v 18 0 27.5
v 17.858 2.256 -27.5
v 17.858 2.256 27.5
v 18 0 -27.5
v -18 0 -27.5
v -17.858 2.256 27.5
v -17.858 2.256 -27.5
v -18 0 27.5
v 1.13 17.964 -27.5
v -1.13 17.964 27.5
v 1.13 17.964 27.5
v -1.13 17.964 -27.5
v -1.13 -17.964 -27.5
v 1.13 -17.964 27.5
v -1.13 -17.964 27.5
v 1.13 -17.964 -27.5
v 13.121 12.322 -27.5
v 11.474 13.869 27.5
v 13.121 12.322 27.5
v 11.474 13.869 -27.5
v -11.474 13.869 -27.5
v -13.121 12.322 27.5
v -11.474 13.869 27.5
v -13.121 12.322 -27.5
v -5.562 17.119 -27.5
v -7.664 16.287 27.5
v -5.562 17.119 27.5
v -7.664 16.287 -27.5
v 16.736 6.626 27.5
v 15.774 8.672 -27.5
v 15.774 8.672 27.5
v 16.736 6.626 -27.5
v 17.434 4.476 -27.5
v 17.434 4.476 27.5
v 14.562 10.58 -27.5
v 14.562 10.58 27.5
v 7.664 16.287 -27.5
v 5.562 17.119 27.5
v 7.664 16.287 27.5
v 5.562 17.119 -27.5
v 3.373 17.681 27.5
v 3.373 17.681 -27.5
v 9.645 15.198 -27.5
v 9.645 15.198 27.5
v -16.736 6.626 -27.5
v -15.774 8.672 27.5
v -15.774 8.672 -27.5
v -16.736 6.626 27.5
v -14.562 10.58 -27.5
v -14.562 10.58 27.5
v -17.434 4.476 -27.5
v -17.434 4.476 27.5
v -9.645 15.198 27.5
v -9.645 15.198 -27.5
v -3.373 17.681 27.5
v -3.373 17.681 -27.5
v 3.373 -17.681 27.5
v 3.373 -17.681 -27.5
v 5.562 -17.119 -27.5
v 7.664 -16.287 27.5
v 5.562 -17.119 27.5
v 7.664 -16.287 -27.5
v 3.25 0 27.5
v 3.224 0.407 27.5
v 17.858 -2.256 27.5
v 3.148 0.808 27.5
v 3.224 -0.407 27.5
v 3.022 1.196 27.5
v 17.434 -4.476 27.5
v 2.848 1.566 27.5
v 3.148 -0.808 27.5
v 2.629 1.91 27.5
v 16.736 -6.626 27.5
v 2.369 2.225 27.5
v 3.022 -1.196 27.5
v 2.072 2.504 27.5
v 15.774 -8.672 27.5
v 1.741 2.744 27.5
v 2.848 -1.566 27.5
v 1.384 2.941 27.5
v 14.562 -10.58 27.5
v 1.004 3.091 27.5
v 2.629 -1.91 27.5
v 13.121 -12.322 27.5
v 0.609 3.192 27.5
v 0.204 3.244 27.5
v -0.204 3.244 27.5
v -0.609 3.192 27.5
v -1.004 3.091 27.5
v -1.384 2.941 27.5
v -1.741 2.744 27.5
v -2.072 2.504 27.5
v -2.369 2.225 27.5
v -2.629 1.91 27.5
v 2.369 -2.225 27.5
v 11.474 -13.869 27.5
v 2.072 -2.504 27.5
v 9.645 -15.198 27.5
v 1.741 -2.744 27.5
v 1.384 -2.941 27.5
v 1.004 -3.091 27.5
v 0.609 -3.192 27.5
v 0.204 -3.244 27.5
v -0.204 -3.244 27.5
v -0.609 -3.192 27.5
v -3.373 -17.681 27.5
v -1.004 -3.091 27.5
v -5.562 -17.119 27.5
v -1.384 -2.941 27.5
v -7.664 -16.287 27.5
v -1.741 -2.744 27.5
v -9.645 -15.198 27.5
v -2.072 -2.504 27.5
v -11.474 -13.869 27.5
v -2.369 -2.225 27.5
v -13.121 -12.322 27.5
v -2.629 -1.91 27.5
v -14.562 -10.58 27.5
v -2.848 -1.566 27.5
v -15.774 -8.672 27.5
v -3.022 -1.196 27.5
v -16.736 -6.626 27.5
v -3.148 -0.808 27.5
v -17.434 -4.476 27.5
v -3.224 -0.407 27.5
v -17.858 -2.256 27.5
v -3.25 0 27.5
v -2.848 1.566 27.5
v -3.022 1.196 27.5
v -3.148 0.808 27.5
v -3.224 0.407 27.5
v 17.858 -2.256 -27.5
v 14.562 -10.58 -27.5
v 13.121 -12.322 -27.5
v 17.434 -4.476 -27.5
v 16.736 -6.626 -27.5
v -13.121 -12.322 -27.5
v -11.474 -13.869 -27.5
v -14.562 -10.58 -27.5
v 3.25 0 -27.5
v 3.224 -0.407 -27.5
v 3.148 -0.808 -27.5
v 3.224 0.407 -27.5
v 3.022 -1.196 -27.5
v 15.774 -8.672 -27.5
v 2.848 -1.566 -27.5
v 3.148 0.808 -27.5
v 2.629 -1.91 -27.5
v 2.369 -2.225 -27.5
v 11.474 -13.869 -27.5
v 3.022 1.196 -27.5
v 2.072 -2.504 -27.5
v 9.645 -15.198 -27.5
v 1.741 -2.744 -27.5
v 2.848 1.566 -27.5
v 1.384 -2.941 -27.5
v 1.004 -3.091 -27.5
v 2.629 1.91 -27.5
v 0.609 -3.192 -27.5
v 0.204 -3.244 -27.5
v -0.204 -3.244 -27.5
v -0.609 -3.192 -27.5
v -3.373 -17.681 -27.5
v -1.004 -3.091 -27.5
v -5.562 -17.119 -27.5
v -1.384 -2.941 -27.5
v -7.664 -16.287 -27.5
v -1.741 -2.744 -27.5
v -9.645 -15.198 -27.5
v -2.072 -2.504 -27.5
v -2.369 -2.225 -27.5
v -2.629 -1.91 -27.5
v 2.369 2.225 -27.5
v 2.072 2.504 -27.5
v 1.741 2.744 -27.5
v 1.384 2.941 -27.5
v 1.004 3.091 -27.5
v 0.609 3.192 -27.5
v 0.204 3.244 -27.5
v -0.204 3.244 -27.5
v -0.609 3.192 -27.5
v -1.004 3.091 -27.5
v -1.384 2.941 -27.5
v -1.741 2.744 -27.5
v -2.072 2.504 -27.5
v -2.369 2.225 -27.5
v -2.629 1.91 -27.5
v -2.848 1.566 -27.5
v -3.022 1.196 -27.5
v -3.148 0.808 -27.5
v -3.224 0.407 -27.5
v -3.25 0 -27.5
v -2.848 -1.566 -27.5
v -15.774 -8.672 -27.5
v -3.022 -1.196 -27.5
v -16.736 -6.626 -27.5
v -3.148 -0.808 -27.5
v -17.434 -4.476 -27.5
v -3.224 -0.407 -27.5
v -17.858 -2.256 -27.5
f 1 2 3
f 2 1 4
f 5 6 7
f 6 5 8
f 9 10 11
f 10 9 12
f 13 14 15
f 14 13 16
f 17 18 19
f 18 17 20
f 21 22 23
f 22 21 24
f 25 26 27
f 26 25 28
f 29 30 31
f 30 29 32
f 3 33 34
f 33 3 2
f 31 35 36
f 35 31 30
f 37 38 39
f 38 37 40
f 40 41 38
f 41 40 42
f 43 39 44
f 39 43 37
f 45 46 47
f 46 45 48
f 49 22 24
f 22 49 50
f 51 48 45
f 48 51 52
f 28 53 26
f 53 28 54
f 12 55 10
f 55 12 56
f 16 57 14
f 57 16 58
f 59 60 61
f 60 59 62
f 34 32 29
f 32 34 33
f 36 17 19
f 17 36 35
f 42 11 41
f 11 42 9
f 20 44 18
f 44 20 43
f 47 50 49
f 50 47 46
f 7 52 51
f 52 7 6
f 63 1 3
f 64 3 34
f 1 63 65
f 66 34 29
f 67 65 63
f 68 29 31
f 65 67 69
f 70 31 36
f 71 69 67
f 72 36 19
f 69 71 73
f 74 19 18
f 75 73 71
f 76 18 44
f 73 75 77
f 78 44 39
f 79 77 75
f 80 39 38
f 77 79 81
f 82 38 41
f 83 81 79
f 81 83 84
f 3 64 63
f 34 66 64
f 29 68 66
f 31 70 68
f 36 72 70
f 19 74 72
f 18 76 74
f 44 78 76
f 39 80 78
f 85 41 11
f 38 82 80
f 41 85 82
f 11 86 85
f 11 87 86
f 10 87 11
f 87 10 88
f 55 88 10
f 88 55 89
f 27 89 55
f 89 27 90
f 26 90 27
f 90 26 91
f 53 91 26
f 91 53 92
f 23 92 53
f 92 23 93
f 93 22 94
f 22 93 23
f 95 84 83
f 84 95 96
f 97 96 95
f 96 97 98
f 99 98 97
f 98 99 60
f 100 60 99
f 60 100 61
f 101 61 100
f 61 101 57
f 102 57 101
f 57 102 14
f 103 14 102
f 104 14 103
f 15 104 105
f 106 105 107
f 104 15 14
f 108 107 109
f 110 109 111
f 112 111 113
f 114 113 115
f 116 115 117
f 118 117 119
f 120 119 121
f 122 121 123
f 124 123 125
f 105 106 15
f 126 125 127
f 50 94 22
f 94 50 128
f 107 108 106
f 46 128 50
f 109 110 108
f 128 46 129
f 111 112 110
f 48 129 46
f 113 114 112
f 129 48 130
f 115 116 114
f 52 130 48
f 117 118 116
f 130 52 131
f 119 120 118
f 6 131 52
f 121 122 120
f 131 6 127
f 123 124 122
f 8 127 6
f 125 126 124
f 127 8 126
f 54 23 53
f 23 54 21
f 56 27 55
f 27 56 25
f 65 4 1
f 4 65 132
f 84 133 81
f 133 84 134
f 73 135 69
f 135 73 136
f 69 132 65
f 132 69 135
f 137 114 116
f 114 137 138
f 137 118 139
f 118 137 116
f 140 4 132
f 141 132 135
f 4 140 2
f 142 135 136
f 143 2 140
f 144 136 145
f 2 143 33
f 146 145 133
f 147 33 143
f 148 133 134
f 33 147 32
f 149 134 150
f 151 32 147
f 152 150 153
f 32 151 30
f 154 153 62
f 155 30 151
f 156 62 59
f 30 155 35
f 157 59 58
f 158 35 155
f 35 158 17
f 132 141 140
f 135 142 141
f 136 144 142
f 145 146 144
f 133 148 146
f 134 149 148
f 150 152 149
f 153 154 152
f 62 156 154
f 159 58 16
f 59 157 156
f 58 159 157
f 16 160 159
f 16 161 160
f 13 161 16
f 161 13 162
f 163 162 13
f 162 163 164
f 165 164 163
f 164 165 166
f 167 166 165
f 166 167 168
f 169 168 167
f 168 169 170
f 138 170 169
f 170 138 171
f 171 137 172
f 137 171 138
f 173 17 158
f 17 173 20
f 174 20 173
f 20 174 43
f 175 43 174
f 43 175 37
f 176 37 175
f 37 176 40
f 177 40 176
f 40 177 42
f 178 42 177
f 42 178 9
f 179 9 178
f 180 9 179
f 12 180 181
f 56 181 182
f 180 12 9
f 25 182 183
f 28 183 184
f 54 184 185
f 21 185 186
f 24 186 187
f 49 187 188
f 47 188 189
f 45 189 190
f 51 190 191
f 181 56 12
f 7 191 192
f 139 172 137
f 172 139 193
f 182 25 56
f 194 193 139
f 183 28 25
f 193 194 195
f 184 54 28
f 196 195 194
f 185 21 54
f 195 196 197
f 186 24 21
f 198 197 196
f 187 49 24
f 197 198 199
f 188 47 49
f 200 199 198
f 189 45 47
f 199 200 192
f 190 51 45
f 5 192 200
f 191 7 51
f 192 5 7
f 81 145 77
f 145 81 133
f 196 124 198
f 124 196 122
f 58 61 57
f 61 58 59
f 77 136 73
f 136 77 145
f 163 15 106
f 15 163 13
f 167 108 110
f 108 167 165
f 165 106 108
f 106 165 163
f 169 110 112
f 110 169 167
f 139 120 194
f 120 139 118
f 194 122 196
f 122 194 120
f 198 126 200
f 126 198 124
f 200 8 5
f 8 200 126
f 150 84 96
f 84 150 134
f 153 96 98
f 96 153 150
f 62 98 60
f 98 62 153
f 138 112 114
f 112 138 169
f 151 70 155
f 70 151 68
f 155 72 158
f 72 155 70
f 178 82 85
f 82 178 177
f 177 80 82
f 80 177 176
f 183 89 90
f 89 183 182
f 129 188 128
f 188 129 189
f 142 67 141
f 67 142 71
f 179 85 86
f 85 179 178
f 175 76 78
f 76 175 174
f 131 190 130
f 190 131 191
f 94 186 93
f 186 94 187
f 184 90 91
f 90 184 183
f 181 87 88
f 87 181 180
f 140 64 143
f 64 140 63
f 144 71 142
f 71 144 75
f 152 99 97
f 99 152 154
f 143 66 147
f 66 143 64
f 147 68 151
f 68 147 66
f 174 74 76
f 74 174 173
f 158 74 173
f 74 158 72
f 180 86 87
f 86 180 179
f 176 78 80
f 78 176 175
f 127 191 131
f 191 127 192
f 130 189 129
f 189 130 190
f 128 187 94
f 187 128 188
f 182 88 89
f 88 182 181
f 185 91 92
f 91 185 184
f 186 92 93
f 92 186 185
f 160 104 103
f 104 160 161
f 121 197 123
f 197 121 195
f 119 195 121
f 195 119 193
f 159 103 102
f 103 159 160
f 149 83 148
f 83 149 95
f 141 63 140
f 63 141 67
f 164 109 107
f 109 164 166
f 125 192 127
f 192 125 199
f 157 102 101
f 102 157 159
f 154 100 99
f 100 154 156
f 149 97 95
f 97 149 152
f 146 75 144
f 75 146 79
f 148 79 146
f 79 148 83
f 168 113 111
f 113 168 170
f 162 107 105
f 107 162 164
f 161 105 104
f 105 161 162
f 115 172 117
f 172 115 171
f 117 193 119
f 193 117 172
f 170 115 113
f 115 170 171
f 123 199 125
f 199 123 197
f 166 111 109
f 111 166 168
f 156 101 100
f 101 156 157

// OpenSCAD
$fn = 50;


difference() {
	union() {
		translate(v = [0, 0, -27.5000000000]) {
			cylinder(h = 55, r = 18.0000000000);
		}
	}
	union() {
		translate(v = [0, 0, -100.0000000000]) {
			cylinder(h = 200, r = 3.2500000000);
		}
	}
}
